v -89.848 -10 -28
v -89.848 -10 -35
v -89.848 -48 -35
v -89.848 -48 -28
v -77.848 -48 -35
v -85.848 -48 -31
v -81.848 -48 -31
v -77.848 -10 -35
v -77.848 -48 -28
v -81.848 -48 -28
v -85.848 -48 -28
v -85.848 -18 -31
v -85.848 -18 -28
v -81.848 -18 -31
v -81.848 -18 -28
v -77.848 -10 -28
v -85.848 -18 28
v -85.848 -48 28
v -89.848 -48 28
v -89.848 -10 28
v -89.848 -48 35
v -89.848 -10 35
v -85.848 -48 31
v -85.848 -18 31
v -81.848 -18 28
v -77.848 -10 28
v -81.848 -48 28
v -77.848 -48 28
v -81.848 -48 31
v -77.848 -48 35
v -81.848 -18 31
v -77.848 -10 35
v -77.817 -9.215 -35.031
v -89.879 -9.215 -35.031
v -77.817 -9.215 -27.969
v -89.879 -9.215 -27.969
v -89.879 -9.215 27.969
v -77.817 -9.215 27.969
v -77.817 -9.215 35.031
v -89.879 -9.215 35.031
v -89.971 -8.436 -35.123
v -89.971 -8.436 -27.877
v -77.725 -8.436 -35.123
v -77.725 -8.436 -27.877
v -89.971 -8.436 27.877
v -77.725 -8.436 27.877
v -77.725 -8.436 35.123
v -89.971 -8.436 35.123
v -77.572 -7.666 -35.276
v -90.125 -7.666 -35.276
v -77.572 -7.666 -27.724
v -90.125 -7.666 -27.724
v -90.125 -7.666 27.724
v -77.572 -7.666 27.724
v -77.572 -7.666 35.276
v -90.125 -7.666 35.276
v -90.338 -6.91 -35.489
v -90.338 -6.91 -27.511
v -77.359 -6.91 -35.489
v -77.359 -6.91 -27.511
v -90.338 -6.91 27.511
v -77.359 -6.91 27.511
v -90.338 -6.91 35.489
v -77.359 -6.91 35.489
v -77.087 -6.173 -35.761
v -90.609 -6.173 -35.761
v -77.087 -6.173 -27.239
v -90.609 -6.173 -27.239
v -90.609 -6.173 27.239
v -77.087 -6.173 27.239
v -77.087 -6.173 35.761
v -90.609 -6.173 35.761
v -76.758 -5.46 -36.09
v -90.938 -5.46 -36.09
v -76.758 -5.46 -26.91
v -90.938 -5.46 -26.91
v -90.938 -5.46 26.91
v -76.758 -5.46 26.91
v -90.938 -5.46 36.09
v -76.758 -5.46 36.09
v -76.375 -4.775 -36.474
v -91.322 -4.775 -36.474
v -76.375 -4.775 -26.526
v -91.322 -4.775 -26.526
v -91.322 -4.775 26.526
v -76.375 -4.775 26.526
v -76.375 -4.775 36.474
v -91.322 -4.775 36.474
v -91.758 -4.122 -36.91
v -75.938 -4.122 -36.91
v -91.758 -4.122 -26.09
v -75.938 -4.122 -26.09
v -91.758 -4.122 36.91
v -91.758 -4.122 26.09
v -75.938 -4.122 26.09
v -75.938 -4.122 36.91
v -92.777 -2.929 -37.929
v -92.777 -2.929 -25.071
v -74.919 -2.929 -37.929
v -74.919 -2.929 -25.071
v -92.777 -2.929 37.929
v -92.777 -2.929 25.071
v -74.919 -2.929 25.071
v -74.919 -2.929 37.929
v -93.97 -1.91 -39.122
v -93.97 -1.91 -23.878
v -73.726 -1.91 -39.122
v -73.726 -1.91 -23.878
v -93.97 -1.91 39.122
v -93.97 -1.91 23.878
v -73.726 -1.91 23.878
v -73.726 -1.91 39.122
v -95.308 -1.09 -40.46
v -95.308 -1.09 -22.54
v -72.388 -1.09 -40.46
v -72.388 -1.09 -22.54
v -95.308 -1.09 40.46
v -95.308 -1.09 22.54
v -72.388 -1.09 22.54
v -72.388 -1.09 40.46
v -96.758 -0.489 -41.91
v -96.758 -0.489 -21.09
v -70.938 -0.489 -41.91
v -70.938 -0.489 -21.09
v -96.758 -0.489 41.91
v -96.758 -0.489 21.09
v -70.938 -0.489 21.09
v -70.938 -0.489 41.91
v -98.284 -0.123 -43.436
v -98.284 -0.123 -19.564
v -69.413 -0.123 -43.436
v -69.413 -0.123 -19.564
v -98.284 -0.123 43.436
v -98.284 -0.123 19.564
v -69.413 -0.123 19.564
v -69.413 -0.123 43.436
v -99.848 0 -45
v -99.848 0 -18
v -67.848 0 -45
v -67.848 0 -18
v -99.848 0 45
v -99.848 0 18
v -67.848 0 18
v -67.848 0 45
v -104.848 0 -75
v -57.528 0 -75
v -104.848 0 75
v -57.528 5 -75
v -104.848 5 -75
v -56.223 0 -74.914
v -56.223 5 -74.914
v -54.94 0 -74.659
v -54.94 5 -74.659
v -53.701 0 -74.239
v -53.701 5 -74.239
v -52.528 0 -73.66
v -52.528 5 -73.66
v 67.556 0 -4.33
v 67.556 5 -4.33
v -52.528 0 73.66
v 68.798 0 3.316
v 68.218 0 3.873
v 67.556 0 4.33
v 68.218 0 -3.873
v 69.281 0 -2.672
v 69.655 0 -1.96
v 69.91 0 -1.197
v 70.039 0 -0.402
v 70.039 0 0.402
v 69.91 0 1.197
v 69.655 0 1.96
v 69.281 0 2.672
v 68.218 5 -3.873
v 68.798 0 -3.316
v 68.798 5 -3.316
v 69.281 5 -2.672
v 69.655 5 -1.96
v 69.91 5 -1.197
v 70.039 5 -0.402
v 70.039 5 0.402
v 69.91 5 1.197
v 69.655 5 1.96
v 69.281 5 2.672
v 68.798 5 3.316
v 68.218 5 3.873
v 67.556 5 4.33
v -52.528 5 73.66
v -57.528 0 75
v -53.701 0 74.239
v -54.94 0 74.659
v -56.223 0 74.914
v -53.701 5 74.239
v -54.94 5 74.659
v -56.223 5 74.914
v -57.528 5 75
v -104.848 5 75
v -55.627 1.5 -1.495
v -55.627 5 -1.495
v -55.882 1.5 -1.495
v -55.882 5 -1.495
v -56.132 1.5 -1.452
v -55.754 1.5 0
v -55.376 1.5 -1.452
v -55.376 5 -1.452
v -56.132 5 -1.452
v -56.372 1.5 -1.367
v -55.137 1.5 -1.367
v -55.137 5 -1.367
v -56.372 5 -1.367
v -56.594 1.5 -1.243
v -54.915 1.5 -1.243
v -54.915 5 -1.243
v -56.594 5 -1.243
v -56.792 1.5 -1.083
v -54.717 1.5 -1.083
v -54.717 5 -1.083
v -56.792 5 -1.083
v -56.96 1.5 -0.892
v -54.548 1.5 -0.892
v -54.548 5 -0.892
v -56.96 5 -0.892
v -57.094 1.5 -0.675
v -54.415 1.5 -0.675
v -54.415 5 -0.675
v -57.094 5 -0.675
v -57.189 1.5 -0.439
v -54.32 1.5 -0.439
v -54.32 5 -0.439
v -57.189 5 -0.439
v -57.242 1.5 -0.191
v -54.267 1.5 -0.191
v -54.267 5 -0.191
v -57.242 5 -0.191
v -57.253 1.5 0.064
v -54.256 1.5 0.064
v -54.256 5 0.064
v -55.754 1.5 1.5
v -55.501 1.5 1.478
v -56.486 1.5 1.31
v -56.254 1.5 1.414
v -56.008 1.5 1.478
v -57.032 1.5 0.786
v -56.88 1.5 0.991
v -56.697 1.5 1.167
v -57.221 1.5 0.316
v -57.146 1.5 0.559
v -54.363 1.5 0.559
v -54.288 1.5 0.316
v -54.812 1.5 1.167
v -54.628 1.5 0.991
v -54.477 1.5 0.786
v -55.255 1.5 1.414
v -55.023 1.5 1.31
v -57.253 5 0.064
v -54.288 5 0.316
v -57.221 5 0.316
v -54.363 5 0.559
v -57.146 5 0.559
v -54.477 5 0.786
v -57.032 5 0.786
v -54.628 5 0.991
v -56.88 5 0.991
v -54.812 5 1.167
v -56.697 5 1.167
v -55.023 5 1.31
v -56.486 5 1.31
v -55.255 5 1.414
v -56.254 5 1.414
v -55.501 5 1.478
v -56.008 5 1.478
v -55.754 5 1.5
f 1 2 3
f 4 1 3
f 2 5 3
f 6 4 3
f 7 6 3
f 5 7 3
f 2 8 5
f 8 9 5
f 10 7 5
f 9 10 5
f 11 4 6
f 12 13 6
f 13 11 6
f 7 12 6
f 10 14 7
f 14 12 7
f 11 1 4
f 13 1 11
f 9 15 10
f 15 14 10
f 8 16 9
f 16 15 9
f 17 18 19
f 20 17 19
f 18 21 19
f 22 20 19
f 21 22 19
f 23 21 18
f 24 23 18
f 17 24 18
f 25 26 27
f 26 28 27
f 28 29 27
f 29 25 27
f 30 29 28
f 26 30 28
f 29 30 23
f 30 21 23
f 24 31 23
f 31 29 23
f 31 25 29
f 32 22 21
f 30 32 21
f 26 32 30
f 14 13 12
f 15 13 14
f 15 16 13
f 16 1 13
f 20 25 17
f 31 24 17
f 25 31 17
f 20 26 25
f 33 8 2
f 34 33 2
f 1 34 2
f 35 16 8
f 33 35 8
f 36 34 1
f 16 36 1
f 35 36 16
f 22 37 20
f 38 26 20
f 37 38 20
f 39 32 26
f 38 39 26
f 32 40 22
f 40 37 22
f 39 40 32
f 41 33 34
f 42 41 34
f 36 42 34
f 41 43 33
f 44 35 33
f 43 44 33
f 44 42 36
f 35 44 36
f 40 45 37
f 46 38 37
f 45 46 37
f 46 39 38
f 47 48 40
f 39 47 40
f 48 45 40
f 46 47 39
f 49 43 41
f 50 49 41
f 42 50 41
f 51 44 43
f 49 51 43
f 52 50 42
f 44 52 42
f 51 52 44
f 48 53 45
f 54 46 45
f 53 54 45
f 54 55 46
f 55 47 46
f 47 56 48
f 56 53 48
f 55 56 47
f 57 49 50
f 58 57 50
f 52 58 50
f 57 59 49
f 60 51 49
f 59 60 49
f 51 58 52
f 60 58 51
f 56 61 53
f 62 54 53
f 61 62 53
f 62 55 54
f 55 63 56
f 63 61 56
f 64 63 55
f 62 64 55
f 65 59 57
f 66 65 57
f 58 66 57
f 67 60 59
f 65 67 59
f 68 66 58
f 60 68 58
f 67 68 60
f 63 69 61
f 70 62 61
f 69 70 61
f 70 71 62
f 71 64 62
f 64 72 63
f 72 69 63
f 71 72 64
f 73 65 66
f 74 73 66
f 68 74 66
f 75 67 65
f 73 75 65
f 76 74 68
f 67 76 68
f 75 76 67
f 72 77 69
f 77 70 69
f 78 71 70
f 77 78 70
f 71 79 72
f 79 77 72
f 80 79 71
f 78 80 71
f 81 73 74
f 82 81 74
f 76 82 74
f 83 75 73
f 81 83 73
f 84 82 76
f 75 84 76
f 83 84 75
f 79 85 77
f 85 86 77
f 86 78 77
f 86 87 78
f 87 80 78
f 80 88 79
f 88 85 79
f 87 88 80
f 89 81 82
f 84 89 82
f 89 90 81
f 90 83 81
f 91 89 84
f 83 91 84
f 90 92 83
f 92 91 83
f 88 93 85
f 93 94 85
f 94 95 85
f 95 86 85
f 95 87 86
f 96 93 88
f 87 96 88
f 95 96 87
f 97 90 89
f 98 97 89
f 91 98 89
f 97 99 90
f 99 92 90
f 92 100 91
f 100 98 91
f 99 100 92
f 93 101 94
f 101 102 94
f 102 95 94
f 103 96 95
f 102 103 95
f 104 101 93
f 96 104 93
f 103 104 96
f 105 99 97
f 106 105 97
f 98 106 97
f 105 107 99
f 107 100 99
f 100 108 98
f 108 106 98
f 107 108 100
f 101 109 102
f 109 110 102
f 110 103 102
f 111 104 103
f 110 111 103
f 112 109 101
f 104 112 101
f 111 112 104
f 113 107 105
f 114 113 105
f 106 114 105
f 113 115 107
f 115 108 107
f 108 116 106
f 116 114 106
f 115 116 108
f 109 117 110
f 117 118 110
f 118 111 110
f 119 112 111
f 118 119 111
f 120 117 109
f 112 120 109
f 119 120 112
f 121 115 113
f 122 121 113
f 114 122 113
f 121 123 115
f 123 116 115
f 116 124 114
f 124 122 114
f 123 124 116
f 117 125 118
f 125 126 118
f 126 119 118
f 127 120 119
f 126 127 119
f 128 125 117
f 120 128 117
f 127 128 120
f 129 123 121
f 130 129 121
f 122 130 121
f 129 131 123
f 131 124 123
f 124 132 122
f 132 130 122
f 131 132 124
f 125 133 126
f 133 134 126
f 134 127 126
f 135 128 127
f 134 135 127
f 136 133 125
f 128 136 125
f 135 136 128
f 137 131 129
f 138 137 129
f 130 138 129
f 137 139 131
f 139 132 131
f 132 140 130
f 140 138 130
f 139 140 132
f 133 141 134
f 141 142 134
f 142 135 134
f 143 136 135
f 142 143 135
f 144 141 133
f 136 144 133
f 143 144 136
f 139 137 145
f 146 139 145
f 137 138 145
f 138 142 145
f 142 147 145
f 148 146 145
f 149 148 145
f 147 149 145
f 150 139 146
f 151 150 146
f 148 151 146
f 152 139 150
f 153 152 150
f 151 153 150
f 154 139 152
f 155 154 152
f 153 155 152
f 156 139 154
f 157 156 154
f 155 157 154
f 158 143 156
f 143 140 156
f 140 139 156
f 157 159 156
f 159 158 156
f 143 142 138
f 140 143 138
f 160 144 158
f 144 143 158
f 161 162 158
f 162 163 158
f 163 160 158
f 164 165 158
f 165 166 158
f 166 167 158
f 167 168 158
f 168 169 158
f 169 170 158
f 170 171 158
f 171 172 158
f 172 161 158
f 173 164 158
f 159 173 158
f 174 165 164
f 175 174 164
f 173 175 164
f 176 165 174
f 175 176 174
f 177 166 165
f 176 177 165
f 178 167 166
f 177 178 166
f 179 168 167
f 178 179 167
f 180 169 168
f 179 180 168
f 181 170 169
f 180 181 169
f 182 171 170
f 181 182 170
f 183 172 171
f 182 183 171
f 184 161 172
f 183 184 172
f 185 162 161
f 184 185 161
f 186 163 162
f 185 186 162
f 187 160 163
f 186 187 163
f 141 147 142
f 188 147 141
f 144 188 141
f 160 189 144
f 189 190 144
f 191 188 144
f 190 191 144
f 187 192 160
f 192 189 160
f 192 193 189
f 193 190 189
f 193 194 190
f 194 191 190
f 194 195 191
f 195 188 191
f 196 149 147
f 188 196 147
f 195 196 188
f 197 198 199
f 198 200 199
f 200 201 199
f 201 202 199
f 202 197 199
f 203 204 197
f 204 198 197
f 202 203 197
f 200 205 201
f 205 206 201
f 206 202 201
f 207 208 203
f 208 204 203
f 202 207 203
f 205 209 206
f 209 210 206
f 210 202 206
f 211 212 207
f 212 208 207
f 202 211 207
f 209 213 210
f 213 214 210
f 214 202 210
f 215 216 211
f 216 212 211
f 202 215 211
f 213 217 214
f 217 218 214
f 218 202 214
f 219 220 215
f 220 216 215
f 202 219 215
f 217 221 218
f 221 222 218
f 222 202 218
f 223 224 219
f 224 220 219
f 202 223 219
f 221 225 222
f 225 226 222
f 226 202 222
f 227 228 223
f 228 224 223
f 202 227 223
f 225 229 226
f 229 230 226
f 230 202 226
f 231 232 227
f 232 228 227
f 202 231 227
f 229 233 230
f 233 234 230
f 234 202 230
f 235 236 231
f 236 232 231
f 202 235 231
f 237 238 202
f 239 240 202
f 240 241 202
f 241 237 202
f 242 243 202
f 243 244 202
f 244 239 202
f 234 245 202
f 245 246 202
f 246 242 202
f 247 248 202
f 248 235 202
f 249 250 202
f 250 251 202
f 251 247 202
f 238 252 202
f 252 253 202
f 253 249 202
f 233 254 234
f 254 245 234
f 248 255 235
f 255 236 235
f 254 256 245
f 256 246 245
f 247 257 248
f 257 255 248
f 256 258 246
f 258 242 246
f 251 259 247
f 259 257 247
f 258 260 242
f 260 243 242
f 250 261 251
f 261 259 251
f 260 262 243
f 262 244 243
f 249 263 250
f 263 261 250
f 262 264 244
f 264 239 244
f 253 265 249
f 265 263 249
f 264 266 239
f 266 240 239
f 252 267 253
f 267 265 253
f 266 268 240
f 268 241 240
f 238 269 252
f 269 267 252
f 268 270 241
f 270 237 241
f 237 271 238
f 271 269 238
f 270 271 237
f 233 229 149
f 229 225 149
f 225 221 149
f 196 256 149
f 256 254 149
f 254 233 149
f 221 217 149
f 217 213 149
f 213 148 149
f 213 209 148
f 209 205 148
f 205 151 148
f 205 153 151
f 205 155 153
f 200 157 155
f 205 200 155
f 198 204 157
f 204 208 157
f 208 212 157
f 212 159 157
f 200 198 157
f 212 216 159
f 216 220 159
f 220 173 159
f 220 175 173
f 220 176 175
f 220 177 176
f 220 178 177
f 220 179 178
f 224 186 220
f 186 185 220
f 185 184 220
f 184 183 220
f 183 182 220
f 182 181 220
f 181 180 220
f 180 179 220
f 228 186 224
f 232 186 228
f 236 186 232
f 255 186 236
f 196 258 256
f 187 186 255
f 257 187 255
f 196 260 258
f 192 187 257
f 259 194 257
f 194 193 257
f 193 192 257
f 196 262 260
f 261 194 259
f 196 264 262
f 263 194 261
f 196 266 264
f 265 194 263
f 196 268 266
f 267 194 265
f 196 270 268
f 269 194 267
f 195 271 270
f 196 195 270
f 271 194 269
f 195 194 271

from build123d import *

# Parameters (mm, degrees)
BOSS_EXTRUDE1_DEPTH  = 5
FILLET1_R            = 5
FILLET2_R            = 10
FILLET3_R            = 10
SKETCH3_R            = 1.5
CUT_EXTRUDE1_DEPTH   = 3.5
SKETCH5_W            = 12
SKETCH5_H            = 7
BOSS_EXTRUDE2_DEPTH  = 48
FILLET4_R            = 10
SKETCH6_W            = 4
SKETCH6_H            = 4
CUT_EXTRUDE2_DEPTH   = 30
FILLET4_OF_MIRROR1_R = 10


with BuildPart() as part:
    # Sketch1 → Boss-Extrude1 (new body)
    with BuildSketch(Plane(origin=(0, 0, 0), x_dir=(1, 0, 0), z_dir=(0, 1, 0))):
        Polygon((75.055534995, 0), (-54.848275573, 75), (-104.848275573, 75), (-104.848275573, -75), (-54.848275573, -75), align=None)
    extrude(amount=BOSS_EXTRUDE1_DEPTH)

    # Fillet1
    fillet1_edges = [part.edges().sort_by_distance(p)[0] for p in [
        (75.055534995, 2.5, 0),
    ]]
    fillet(fillet1_edges, radius=FILLET1_R)

    # Fillet2
    fillet2_edges = [part.edges().sort_by_distance(p)[0] for p in [
        (-54.848275573, 2.5, -75),
    ]]
    fillet(fillet2_edges, radius=FILLET2_R)

    # Fillet3
    fillet3_edges = [part.edges().sort_by_distance(p)[0] for p in [
        (-54.848275573, 2.5, 75),
    ]]
    fillet(fillet3_edges, radius=FILLET3_R)

    # Sketch3 → Cut-Extrude1 (cut)
    with BuildSketch(Plane(origin=(0, 5, 0), x_dir=(1, 0, 0), z_dir=(0, 1, 0))):
        with Locations(Location((-55.754465005, 0, 0), (0, 0, 270))):
            Circle(SKETCH3_R)
    extrude(amount=-CUT_EXTRUDE1_DEPTH, mode=Mode.SUBTRACT)

    # Sketch5 → Boss-Extrude2 (add)
    with BuildSketch(Plane.XZ):
        with Locations((-83.848275573, -31.5)):
            Rectangle(SKETCH5_W, SKETCH5_H)
    boss_extrude2 = extrude(amount=BOSS_EXTRUDE2_DEPTH)

    # Fillet4
    fillet4_edges = [part.edges().sort_by_distance(p)[0] for p in [
        (-89.848275573, 0, -31.5),
        (-83.848275573, 0, -35),
        (-77.848275573, 0, -31.5),
        (-83.848275573, 0, -28),
    ]]
    fillet(fillet4_edges, radius=FILLET4_R)

    # Sketch6 → Cut-Extrude2 (cut)
    with BuildSketch(Plane.XZ.offset(48)):
        with Locations((-83.848275573, -29)):
            Rectangle(SKETCH6_W, SKETCH6_H)
    cut_extrude2 = extrude(amount=-CUT_EXTRUDE2_DEPTH, mode=Mode.SUBTRACT)

    # Mirror1: Boss-Extrude2, Cut-Extrude2 across plane
    add(boss_extrude2.mirror(Plane.XY))
    add(cut_extrude2.mirror(Plane.XY), mode=Mode.SUBTRACT)

    # Fillet4 of Mirror1
    fillet4_of_mirror1_edges = [part.edges().sort_by_distance(p)[0] for p in [
        (-89.848275573, 0, 31.5),
        (-83.848275573, 0, 35),
        (-77.848275573, 0, 31.5),
        (-83.848275573, 0, 28),
    ]]
    fillet(fillet4_of_mirror1_edges, radius=FILLET4_OF_MIRROR1_R)


solid = part.part
